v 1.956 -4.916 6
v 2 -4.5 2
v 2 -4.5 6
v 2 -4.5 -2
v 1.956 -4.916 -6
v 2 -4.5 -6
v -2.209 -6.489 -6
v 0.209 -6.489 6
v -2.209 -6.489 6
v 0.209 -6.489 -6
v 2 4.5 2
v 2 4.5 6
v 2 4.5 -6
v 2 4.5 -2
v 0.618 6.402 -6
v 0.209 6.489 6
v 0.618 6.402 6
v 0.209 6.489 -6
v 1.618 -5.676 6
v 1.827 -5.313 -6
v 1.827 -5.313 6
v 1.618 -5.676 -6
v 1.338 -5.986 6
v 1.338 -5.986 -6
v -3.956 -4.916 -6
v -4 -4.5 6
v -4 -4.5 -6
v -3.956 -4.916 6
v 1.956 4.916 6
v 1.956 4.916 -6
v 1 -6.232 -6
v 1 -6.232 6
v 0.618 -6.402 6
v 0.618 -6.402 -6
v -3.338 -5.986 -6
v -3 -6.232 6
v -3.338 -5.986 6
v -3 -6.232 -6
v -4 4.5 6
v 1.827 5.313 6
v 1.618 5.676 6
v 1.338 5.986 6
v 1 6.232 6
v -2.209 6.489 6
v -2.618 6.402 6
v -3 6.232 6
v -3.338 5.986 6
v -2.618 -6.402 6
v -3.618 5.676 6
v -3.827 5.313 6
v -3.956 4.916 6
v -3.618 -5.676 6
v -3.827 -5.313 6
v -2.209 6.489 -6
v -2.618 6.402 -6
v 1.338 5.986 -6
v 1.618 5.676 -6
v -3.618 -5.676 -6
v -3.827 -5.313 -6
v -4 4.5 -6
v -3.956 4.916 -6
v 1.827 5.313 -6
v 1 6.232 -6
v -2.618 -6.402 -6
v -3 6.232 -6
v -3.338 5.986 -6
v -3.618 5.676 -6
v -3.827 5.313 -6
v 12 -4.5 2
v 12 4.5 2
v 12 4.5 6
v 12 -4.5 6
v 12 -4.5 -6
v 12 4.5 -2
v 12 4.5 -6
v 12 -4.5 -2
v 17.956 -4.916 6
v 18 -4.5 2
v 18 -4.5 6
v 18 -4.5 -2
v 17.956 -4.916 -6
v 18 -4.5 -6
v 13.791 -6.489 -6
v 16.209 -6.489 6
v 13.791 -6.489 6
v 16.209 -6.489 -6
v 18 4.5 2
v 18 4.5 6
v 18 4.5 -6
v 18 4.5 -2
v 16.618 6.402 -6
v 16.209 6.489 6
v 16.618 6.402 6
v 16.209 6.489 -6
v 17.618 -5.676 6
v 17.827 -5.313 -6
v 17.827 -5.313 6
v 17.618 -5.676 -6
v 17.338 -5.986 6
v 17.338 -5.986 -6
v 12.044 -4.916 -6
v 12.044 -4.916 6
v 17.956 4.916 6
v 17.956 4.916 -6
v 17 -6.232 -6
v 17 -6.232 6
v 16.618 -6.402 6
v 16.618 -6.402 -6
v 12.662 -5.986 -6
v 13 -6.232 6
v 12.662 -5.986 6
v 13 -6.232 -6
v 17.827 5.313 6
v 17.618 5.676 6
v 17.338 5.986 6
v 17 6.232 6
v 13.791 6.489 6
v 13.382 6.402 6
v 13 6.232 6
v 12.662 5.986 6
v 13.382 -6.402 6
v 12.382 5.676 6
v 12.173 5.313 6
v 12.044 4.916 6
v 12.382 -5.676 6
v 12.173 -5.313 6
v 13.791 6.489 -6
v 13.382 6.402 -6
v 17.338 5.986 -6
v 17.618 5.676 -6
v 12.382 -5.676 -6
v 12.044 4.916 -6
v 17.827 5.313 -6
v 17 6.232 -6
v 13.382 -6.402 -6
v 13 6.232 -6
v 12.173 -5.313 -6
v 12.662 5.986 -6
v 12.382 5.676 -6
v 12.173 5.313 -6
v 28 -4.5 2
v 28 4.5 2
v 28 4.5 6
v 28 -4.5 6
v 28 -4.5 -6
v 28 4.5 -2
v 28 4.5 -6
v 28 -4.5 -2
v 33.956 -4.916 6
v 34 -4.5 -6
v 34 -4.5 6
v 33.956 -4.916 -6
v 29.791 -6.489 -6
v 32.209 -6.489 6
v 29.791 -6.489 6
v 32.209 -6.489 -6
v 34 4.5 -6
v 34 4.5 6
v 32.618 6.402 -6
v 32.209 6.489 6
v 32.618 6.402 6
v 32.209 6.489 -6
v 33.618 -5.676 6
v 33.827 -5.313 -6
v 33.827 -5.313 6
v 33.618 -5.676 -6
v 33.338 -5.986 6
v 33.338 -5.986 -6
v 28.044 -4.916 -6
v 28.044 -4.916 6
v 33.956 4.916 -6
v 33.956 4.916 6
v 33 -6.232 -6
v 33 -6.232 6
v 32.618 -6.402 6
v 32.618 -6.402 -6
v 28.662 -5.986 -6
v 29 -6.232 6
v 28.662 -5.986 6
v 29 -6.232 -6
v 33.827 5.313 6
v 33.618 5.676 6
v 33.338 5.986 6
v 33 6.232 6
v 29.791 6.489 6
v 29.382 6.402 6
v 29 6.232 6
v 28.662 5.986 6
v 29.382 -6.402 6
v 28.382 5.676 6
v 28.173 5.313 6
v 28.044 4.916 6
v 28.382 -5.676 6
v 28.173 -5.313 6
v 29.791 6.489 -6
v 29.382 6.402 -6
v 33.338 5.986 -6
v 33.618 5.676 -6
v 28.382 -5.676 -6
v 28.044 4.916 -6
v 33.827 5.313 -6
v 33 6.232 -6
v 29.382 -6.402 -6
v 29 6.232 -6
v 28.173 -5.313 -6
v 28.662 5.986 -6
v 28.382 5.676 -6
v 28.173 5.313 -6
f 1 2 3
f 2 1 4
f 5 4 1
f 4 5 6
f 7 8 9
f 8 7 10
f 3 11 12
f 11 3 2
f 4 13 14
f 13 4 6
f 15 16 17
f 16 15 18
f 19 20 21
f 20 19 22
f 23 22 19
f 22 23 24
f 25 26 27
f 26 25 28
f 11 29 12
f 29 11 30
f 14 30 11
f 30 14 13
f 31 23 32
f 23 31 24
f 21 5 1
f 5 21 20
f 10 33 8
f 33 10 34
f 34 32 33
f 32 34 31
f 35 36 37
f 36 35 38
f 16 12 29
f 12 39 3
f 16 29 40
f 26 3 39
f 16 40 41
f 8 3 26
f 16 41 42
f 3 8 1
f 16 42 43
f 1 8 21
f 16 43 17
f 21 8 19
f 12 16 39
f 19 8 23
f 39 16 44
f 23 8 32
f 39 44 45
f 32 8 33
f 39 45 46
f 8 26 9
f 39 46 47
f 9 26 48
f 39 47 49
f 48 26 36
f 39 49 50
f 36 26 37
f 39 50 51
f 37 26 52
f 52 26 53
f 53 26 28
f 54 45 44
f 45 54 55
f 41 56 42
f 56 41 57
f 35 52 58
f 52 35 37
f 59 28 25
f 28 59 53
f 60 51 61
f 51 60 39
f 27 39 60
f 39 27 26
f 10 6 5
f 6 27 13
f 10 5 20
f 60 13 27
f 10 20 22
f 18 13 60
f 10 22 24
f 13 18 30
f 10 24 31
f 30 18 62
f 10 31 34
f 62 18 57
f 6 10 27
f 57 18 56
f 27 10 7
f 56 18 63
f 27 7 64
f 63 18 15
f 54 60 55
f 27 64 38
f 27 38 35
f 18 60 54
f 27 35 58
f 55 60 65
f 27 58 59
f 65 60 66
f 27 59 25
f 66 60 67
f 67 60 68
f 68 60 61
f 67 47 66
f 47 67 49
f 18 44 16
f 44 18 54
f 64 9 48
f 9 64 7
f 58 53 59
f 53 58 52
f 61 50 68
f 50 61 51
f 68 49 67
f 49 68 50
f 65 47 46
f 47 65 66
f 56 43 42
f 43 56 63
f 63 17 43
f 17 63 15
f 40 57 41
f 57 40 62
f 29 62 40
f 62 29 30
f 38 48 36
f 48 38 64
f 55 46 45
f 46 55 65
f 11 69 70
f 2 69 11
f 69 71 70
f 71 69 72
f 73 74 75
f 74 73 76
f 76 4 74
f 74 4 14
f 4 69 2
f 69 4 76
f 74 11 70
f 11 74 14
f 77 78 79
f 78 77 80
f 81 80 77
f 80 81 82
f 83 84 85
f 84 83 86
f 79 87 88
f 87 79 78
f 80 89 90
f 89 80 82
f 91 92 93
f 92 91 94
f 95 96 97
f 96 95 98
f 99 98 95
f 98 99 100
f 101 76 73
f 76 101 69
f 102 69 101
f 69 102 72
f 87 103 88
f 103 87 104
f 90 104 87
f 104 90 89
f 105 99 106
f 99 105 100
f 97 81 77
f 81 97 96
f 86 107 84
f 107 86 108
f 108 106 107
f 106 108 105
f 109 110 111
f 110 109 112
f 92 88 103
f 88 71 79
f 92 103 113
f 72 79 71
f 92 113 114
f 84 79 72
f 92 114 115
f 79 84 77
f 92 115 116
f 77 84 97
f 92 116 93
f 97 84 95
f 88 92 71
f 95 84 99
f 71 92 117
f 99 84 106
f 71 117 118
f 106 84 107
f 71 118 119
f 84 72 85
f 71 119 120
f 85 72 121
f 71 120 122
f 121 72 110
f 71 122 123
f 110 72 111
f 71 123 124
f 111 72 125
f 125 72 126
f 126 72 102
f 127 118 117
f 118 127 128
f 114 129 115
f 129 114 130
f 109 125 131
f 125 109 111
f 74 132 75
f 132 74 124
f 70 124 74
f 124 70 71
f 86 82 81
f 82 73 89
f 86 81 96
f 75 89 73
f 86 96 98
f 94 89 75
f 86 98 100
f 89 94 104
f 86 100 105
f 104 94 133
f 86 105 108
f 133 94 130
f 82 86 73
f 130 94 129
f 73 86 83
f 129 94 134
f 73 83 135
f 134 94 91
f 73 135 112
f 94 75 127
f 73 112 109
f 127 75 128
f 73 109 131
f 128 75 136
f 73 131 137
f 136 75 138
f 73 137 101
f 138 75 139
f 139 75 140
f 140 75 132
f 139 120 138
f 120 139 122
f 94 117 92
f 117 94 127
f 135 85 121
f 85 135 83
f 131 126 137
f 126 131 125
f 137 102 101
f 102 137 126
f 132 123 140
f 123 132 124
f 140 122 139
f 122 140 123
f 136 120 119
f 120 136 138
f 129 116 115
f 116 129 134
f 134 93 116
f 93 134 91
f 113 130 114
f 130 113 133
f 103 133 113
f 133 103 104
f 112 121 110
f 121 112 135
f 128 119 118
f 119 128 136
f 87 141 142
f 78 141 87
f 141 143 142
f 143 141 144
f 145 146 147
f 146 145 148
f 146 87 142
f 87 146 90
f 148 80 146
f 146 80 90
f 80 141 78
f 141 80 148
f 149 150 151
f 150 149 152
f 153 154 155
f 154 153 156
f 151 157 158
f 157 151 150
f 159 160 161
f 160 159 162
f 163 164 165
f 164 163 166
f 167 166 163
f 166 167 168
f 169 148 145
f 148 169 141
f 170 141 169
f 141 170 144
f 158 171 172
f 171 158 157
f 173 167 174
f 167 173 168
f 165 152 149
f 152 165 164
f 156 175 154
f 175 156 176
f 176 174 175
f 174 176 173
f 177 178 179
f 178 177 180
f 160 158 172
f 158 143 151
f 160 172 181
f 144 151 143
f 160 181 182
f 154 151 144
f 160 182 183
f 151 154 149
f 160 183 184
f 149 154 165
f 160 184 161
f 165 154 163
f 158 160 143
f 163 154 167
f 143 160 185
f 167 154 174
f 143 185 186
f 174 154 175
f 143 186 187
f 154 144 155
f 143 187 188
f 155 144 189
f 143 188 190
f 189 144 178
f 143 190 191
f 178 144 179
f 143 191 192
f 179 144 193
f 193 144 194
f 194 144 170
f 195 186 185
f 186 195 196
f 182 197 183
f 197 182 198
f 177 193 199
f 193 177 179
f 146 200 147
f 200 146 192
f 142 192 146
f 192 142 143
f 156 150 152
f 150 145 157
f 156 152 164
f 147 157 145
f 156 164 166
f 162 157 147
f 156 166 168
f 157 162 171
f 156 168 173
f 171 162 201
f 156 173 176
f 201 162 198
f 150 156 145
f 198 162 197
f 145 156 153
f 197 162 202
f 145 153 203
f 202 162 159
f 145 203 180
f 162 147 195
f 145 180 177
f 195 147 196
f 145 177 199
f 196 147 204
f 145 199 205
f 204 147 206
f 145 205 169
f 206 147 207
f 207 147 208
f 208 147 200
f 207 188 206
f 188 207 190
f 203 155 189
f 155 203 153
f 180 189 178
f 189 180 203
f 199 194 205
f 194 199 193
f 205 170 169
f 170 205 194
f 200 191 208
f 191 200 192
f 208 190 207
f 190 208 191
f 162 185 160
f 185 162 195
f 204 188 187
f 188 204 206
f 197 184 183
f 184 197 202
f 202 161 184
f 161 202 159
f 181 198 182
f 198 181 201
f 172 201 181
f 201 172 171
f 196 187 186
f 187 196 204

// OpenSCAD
$fn=30;
height=12;
radius=2;
union(){
    hull(){
        translate([0,-4.5,0])cylinder(r=radius,h=height, center=true);
        translate([-2,4.5,0])cylinder(r=radius,h=height, center=true);
        translate([0,4.5,0])cylinder(r=radius,h=height, center=true);
        translate([-2,-4.5,0])cylinder(r=radius,h=height, center=true);
  }
  translate([7,0,0])cube([radius/0.2,radius+7,radius+2],center=true);
   translate([16,0,0]) hull(){
        translate([0,-4.5,0])cylinder(r=radius,h=height, center=true);
        translate([-2,4.5,0])cylinder(r=radius,h=height, center=true);
        translate([0,4.5,0])cylinder(r=radius,h=height, center=true);
        translate([-2,-4.5,0])cylinder(r=radius,h=height, center=true);
  }
   translate([23,0,0])cube([radius/0.2,radius+7,radius+2],center=true);
   translate([32,0,0]) hull(){
        translate([0,-4.5,0])cylinder(r=radius,h=height, center=true);
        translate([-2,4.5,0])cylinder(r=radius,h=height, center=true);
        translate([0,4.5,0])cylinder(r=radius,h=height, center=true);
        translate([-2,-4.5,0])cylinder(r=radius,h=height, center=true);
  }
}
